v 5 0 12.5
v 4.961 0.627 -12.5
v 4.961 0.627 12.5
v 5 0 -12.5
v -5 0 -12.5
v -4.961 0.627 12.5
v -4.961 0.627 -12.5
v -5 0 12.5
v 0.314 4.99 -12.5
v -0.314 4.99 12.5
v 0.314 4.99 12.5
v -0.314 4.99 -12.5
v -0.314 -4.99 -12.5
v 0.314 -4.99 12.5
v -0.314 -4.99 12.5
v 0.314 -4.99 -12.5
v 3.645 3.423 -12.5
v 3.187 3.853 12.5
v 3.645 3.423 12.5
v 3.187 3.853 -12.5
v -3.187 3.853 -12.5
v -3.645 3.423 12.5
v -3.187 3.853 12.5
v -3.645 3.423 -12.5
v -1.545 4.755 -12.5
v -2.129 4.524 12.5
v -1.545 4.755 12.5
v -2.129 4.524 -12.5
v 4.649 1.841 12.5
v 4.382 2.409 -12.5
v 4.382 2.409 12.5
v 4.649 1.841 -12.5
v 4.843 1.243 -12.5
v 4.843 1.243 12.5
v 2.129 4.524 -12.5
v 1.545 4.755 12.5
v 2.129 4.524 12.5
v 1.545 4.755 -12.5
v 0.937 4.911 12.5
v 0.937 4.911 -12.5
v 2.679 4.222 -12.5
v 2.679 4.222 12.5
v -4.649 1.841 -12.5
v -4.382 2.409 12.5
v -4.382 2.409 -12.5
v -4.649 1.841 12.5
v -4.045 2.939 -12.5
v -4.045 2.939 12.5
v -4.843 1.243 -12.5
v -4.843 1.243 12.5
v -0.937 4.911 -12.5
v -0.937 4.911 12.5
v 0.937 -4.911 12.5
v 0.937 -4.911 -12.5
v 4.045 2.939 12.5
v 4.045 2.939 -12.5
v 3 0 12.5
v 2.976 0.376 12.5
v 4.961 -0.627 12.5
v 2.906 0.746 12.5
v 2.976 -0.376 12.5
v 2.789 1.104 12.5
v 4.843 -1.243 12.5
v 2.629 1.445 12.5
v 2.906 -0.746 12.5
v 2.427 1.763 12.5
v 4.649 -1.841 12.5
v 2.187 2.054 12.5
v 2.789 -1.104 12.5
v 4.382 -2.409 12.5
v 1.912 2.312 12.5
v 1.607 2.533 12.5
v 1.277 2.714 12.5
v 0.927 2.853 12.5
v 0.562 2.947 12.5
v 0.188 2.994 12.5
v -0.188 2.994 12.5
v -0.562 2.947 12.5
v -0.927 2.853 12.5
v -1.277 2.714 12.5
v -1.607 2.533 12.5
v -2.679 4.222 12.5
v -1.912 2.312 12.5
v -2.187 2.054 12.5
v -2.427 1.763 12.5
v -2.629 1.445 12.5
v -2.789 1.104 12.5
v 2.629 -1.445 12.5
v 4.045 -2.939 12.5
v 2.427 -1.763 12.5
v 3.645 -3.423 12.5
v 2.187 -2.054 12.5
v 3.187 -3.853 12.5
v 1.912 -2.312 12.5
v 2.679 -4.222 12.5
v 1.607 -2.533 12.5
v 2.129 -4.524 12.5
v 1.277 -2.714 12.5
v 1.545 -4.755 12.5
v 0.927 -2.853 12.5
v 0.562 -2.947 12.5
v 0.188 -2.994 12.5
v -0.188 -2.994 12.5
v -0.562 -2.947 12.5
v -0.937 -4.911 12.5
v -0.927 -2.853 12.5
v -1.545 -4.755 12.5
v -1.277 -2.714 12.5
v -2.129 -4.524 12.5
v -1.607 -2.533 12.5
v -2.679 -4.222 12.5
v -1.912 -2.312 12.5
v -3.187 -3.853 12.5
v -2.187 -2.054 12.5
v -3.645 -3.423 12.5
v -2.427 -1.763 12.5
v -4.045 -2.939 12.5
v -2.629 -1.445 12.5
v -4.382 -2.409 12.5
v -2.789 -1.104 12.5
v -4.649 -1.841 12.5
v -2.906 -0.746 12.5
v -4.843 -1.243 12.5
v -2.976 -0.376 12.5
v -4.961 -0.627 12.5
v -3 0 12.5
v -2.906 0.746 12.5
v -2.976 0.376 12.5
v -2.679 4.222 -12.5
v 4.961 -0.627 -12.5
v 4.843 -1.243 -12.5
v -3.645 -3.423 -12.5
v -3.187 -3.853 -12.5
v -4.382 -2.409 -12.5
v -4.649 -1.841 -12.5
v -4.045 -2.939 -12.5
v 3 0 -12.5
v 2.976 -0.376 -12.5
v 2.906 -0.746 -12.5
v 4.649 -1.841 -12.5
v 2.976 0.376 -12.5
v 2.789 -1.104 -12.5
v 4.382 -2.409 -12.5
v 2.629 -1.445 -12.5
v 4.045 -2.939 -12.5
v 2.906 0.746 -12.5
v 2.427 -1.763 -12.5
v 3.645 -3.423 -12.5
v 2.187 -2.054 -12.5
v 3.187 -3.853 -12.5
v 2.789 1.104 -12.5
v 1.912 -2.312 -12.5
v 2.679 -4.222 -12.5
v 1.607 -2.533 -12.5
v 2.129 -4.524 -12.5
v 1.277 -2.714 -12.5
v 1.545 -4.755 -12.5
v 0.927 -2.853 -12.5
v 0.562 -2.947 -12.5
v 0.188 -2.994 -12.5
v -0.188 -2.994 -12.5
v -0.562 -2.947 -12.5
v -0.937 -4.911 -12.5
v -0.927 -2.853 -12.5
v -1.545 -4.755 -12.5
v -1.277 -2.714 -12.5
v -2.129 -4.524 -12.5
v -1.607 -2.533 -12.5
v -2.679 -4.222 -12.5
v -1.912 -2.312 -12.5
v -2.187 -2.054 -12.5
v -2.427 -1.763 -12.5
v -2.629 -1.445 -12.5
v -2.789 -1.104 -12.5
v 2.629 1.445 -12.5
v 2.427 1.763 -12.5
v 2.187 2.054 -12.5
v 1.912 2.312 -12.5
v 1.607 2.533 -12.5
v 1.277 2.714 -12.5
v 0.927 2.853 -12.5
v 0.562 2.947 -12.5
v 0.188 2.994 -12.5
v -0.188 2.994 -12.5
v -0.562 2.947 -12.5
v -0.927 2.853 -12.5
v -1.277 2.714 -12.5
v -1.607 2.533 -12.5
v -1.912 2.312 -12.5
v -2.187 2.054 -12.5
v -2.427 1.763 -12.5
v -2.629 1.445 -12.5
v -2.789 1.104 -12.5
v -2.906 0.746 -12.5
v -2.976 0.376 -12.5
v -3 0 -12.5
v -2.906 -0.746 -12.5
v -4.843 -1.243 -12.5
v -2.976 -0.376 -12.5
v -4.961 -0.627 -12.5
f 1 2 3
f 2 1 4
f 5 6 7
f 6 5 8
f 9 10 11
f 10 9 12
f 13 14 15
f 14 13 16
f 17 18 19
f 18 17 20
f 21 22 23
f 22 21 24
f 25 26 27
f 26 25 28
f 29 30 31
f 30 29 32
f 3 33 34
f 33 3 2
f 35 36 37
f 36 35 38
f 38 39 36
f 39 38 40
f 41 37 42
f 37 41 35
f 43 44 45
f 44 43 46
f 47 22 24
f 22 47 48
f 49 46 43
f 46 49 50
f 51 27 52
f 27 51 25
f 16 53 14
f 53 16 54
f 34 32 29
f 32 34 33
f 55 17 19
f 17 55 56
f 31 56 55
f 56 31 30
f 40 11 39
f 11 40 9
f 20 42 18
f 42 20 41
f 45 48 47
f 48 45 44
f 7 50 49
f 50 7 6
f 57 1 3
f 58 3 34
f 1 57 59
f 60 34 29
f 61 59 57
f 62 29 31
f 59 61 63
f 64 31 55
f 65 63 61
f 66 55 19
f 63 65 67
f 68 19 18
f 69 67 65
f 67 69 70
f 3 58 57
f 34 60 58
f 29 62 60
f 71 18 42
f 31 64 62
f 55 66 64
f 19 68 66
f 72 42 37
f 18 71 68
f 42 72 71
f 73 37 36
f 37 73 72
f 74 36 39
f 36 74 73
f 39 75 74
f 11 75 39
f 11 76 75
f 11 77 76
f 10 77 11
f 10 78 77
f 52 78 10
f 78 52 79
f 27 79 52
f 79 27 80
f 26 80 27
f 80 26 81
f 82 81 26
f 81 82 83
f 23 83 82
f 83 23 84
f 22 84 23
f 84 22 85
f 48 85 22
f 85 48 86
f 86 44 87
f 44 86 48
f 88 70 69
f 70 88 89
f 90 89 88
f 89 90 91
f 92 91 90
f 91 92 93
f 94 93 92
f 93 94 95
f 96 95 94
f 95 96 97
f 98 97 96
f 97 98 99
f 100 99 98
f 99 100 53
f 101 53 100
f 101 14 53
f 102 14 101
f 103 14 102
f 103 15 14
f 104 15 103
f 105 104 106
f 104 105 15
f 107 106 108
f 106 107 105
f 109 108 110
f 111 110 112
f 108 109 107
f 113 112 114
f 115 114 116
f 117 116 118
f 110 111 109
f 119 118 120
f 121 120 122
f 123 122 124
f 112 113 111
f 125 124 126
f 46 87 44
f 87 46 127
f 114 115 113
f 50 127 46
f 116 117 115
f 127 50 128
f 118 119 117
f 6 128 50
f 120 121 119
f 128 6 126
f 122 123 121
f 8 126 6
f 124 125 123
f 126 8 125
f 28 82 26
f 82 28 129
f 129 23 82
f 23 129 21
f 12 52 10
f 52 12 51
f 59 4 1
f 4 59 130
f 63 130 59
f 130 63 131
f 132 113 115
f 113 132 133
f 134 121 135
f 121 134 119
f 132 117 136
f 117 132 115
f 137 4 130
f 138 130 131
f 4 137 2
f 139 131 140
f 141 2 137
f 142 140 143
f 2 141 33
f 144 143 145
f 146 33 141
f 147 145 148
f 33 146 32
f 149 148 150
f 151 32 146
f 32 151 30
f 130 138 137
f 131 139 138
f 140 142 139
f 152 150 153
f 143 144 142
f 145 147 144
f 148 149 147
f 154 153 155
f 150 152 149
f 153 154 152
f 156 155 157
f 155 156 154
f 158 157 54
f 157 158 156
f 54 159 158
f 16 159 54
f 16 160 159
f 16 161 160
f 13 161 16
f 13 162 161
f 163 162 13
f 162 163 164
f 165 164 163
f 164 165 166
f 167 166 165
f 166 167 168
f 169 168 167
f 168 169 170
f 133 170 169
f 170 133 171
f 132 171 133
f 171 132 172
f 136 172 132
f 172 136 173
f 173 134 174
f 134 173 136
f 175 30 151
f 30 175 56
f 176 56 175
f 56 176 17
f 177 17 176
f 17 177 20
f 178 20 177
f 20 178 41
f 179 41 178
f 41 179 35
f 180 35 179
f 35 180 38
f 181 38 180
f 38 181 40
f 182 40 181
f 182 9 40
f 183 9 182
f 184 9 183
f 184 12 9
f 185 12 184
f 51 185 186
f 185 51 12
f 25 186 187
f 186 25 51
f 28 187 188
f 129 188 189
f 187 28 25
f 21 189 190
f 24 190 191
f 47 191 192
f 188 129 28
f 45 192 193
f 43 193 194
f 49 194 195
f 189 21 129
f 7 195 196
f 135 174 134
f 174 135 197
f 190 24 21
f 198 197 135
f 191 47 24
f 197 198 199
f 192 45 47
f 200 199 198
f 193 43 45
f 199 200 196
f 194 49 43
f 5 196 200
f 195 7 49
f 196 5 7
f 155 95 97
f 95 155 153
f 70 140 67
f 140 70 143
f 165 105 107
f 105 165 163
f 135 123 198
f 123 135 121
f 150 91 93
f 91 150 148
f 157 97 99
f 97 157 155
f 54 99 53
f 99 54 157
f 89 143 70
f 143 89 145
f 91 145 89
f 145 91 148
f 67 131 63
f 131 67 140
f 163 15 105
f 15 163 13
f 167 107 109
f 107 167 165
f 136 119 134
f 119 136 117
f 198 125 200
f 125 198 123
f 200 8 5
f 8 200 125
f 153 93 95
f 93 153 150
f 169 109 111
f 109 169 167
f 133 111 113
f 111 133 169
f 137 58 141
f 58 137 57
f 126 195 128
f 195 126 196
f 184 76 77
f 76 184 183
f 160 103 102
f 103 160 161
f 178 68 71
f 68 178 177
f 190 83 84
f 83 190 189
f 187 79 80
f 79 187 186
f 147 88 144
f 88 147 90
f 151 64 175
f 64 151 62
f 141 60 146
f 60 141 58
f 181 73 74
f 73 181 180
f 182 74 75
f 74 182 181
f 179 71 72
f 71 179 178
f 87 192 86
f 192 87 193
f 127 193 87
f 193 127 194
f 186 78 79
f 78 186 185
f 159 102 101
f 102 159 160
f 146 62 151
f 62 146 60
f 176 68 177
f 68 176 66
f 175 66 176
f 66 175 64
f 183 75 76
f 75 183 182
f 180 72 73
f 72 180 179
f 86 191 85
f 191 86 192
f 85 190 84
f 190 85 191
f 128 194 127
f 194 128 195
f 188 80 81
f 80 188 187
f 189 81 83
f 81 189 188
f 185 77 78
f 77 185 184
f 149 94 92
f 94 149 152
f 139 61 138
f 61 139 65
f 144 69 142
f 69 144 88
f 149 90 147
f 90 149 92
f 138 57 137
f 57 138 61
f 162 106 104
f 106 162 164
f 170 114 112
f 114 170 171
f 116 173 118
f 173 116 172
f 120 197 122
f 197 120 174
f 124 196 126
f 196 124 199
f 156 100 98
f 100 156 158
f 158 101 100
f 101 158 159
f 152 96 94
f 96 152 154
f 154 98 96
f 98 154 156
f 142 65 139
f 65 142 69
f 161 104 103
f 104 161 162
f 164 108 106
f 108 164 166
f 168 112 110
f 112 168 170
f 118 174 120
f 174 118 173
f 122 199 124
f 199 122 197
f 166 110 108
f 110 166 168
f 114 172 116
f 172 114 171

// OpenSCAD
$fn = 50;


difference() {
	union() {
		translate(v = [0, 0, -12.5000000000]) {
			cylinder(h = 25, r = 5.0000000000);
		}
	}
	union() {
		translate(v = [0, 0, -100.0000000000]) {
			cylinder(h = 200, r = 3);
		}
	}
}
